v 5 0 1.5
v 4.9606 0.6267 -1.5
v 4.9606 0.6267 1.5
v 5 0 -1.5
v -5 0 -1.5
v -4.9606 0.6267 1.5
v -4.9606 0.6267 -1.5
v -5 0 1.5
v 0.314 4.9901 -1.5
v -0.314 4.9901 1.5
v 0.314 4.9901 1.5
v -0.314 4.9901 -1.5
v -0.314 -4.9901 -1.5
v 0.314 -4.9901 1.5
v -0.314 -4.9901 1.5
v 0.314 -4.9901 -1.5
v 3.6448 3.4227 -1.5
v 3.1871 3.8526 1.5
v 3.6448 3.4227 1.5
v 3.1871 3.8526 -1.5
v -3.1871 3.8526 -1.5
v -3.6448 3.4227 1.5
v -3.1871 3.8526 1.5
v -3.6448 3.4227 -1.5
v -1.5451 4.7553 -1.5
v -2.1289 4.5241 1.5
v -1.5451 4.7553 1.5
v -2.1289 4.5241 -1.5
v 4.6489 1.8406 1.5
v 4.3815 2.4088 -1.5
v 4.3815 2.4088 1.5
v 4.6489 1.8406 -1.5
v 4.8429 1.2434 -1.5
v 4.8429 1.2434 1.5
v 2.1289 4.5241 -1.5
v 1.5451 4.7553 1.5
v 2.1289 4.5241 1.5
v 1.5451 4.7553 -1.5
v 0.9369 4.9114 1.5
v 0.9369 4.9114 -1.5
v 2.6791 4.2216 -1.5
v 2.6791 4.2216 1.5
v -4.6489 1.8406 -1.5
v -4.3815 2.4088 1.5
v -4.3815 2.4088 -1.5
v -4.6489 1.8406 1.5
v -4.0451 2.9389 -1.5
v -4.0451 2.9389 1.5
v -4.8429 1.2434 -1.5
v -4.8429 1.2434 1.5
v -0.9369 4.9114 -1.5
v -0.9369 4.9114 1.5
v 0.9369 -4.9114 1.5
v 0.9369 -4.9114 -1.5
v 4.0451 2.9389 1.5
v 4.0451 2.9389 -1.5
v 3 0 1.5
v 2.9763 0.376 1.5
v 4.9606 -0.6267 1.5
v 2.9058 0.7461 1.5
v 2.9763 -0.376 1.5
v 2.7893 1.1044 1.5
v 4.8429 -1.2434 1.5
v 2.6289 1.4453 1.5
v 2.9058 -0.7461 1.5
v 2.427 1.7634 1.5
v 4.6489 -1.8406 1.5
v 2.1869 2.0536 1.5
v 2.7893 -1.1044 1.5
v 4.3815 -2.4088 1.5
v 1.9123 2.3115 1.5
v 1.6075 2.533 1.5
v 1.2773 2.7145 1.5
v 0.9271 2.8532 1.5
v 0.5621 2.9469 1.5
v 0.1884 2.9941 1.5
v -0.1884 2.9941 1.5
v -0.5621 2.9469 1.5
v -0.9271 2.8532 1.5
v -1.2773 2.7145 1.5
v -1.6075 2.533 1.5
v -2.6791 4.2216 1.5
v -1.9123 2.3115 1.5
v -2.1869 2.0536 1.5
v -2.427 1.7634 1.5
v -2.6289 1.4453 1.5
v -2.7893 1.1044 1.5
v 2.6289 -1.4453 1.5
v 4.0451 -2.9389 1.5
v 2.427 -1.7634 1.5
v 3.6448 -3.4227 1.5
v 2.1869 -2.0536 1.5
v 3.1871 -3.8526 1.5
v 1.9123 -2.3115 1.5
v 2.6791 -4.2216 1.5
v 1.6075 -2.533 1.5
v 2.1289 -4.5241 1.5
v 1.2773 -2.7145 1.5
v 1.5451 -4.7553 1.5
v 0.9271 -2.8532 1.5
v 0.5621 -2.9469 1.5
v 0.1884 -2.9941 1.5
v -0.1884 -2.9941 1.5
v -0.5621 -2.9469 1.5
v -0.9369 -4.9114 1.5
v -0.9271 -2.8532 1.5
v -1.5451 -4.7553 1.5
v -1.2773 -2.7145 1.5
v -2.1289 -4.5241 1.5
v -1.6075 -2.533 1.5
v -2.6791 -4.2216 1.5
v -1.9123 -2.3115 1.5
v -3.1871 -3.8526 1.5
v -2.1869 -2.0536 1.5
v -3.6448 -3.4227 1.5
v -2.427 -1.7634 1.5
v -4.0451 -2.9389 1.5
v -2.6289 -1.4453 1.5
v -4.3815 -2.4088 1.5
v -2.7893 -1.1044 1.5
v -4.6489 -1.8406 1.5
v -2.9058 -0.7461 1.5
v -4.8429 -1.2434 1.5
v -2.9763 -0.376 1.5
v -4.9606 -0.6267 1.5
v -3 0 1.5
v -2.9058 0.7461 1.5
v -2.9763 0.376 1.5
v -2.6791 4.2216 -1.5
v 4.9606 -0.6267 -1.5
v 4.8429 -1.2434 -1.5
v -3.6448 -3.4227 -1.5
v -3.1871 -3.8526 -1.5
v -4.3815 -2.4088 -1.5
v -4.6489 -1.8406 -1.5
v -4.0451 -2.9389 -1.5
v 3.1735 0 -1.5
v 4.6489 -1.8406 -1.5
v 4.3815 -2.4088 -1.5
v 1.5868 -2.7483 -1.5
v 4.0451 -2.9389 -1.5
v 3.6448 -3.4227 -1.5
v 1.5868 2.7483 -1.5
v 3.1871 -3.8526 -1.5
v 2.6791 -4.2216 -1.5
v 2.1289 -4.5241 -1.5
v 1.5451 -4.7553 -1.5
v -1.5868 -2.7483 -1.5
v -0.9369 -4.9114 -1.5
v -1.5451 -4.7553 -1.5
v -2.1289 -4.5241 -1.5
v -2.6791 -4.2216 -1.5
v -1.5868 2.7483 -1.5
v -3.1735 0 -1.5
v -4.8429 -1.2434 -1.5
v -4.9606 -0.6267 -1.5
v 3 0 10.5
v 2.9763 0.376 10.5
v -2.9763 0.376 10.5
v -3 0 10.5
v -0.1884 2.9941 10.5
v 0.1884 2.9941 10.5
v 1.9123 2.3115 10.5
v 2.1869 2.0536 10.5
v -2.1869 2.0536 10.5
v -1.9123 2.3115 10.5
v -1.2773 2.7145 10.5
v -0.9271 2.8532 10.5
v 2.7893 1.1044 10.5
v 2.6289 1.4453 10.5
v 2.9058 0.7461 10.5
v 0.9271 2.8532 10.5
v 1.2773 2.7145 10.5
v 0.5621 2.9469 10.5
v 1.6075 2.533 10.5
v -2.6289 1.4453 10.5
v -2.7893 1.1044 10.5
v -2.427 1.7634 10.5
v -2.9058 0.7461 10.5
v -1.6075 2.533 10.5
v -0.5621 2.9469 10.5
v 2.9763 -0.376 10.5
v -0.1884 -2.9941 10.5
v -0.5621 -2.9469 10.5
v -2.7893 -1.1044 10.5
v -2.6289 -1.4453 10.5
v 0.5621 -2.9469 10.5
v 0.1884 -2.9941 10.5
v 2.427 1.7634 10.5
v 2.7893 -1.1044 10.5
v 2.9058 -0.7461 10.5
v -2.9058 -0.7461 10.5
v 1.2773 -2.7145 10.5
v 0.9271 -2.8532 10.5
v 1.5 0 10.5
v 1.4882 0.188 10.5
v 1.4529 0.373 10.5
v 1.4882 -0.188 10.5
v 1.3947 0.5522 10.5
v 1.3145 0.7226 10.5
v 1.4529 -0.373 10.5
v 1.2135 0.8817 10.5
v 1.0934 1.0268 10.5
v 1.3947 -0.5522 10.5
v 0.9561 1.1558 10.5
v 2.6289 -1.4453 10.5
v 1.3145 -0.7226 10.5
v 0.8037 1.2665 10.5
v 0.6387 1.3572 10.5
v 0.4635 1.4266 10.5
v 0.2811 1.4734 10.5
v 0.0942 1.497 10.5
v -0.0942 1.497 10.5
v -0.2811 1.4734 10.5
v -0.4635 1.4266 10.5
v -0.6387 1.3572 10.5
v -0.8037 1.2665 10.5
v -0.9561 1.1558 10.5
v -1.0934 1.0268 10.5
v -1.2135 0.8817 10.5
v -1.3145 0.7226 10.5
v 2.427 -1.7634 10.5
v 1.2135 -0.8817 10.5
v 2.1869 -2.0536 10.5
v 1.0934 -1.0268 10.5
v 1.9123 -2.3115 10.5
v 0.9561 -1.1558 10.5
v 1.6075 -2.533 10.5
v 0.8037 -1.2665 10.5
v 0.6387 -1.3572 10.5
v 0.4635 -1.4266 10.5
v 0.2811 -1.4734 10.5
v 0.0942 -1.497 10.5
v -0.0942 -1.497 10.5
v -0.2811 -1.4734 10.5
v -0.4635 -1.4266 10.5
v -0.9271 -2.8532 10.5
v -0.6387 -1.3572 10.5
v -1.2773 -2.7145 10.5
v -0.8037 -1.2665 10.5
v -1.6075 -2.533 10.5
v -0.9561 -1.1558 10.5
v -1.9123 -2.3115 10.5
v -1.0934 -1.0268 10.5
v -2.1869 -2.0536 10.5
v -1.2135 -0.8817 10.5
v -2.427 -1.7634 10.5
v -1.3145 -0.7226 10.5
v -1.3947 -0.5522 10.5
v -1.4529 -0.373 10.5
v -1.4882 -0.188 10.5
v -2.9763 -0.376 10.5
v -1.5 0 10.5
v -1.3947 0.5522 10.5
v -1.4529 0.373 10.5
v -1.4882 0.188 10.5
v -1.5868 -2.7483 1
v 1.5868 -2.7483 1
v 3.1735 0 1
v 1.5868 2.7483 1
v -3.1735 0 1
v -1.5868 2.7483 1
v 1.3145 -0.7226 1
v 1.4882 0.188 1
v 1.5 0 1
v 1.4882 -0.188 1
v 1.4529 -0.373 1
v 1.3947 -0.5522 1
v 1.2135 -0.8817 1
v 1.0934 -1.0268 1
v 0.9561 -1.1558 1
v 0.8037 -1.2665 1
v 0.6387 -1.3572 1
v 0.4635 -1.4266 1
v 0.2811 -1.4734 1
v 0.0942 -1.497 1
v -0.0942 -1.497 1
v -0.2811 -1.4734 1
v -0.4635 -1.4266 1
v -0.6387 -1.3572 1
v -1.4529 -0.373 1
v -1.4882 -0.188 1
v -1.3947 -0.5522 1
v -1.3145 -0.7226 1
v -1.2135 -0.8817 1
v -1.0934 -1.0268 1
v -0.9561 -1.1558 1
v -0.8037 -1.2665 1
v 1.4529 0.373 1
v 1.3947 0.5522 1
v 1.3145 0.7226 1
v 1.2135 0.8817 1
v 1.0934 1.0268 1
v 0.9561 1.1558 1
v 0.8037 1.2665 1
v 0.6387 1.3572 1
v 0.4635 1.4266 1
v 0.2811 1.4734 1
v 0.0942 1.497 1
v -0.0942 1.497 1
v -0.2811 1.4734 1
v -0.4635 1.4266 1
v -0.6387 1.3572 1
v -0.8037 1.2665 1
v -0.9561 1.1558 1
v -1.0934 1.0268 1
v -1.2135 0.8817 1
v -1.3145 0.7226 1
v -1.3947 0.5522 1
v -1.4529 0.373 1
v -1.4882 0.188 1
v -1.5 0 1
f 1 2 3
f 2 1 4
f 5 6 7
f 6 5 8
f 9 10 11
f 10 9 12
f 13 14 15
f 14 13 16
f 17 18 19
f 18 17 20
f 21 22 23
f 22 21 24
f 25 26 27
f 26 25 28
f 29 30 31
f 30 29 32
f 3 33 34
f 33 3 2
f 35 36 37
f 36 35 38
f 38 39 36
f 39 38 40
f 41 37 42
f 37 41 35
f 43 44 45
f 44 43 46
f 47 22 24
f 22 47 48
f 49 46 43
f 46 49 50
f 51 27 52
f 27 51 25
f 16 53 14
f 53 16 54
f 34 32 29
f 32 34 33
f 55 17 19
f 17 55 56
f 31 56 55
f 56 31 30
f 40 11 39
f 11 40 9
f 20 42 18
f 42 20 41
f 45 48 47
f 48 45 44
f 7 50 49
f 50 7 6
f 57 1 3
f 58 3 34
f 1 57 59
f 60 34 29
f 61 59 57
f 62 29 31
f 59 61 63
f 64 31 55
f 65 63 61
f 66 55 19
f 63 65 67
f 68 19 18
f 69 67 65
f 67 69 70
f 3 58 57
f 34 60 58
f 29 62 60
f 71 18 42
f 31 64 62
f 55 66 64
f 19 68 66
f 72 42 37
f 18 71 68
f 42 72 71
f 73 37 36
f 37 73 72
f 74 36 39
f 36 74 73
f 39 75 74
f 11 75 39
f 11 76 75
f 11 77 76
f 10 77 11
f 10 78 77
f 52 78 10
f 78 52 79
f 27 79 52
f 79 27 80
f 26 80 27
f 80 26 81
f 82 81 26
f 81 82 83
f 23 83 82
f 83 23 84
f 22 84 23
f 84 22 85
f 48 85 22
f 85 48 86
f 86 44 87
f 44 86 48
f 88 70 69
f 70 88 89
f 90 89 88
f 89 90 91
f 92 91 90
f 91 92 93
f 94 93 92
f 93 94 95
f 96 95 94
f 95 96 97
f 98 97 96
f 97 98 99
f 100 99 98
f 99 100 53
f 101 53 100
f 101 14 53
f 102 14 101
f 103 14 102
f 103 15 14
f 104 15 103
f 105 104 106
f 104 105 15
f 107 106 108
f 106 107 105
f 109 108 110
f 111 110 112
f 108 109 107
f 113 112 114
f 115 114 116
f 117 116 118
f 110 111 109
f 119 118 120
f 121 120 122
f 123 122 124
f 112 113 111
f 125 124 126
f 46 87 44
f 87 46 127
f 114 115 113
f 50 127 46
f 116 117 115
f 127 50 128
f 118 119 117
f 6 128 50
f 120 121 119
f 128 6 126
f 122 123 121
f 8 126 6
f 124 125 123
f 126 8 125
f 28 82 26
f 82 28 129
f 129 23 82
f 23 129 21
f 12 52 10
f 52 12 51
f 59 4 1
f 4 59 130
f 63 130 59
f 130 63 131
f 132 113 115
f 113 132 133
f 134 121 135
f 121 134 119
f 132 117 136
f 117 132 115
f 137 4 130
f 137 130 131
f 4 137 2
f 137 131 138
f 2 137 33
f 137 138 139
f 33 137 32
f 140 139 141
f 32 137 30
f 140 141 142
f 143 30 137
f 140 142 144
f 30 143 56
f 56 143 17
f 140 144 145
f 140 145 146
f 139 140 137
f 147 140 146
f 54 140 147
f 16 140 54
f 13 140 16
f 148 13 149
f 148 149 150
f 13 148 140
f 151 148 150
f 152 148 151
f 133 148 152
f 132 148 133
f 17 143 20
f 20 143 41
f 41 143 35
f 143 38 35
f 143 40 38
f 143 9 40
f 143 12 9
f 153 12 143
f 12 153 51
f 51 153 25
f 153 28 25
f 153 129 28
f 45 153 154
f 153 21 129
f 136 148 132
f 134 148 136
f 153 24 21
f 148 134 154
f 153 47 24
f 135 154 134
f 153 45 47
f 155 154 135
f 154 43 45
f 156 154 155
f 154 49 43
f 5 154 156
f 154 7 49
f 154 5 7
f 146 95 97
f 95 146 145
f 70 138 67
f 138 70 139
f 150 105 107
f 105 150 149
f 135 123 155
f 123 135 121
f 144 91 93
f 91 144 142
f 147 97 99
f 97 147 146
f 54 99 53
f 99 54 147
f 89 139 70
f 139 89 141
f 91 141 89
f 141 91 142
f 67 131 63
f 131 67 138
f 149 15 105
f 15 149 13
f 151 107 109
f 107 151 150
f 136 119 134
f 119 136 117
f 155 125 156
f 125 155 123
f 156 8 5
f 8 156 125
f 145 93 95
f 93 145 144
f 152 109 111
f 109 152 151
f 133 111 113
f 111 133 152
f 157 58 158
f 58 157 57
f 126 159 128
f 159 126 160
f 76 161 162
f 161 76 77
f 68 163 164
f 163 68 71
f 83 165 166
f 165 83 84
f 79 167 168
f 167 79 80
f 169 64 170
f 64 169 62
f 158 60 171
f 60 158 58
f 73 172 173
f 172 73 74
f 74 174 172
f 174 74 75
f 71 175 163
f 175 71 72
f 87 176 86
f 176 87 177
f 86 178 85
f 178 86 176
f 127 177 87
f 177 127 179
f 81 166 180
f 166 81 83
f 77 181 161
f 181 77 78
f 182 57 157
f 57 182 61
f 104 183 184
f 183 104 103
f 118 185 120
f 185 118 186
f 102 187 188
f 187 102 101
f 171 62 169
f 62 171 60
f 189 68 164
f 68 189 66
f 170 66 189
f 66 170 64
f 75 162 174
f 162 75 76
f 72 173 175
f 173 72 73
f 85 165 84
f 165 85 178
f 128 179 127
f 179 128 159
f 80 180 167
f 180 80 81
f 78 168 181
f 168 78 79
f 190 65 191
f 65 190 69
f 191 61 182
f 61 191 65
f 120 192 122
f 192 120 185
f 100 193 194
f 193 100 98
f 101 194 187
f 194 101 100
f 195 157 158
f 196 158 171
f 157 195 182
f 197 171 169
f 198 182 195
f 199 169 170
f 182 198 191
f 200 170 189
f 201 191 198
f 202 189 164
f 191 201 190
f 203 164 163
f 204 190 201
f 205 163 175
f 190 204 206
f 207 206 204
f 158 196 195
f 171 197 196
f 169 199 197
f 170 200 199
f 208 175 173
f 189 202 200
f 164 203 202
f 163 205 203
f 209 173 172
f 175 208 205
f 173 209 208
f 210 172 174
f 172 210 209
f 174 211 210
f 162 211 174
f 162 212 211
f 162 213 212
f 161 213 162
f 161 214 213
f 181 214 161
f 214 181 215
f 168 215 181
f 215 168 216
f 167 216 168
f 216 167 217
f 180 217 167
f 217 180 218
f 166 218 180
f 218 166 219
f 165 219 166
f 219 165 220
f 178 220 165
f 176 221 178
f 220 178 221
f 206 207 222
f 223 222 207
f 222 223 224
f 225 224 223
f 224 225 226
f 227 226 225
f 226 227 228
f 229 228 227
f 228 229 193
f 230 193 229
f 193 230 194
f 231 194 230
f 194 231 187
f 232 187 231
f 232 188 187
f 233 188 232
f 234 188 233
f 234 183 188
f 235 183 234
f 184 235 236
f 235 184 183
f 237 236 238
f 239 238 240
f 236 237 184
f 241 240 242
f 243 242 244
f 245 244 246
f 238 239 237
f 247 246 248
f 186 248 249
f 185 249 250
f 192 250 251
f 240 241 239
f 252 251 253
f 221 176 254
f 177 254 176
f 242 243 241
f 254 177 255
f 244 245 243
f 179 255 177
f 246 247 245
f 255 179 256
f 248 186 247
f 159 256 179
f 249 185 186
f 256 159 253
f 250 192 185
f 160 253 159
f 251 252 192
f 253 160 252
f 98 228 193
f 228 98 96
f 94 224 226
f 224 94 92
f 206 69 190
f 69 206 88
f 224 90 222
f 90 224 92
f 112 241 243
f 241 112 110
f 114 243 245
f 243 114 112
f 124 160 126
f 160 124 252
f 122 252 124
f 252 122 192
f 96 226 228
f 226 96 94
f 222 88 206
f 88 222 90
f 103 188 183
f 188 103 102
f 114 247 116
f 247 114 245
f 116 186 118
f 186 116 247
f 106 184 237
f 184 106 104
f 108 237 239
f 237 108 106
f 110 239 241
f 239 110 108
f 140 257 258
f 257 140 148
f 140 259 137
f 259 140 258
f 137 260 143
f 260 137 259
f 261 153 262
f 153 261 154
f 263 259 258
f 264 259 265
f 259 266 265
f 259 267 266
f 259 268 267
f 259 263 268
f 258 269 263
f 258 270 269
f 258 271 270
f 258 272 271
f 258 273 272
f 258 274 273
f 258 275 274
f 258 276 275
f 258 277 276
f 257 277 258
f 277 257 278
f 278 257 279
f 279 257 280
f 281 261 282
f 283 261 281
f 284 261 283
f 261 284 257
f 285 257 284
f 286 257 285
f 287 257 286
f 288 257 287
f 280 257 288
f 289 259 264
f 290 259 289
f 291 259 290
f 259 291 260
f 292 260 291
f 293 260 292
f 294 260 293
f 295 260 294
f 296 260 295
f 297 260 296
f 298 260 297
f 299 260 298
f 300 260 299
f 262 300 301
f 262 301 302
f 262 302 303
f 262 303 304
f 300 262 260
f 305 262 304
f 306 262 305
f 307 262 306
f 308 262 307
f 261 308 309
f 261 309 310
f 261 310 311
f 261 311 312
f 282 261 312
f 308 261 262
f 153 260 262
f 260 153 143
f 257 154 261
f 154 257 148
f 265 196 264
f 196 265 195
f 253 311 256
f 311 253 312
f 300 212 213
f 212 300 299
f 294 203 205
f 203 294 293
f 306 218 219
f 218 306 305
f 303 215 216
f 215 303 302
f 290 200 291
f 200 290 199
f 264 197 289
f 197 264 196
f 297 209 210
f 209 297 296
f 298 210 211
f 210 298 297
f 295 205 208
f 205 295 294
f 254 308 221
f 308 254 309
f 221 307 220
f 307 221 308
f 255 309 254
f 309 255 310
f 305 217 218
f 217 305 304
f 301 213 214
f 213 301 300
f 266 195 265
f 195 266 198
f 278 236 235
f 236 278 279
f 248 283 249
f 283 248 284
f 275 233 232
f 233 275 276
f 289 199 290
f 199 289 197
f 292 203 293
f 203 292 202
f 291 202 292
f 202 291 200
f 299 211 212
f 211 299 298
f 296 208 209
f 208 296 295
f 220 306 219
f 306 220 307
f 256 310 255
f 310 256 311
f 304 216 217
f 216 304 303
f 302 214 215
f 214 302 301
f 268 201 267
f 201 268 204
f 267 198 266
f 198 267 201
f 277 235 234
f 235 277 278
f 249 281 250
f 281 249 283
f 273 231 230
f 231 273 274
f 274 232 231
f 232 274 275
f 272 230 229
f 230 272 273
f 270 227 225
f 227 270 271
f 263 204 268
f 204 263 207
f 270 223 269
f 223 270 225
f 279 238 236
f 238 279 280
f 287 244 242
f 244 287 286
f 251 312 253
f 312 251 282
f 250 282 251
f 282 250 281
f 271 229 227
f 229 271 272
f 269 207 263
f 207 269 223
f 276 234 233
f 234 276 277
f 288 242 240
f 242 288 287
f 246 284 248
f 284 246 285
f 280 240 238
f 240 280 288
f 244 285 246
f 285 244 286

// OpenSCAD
$fn = 50;


difference() {
	union() {
		translate(v = [0, 0, -1.5000000000]) {
			cylinder(h = 3, r = 5.0000000000);
		}
		translate(v = [0, 0, -1.5000000000]) {
			cylinder(h = 12, r = 3.0000000000);
		}
	}
	union() {
		translate(v = [0, 0, -1.5000000000]) {
			rotate(a = [0, 0, 0]) {
				difference() {
					union() {
						linear_extrude(height = 2.5000000000) {
							polygon(points = [[3.1735000000, 0.0000000000], [1.5867500000, 2.7483316189], [-1.5867500000, 2.7483316189], [-3.1735000000, 0.0000000000], [-1.5867500000, -2.7483316189], [1.5867500000, -2.7483316189]]);
						}
					}
					union();
				}
			}
		}
		translate(v = [0, 0, -50.0000000000]) {
			cylinder(h = 100, r = 1.5000000000);
		}
	}
}
